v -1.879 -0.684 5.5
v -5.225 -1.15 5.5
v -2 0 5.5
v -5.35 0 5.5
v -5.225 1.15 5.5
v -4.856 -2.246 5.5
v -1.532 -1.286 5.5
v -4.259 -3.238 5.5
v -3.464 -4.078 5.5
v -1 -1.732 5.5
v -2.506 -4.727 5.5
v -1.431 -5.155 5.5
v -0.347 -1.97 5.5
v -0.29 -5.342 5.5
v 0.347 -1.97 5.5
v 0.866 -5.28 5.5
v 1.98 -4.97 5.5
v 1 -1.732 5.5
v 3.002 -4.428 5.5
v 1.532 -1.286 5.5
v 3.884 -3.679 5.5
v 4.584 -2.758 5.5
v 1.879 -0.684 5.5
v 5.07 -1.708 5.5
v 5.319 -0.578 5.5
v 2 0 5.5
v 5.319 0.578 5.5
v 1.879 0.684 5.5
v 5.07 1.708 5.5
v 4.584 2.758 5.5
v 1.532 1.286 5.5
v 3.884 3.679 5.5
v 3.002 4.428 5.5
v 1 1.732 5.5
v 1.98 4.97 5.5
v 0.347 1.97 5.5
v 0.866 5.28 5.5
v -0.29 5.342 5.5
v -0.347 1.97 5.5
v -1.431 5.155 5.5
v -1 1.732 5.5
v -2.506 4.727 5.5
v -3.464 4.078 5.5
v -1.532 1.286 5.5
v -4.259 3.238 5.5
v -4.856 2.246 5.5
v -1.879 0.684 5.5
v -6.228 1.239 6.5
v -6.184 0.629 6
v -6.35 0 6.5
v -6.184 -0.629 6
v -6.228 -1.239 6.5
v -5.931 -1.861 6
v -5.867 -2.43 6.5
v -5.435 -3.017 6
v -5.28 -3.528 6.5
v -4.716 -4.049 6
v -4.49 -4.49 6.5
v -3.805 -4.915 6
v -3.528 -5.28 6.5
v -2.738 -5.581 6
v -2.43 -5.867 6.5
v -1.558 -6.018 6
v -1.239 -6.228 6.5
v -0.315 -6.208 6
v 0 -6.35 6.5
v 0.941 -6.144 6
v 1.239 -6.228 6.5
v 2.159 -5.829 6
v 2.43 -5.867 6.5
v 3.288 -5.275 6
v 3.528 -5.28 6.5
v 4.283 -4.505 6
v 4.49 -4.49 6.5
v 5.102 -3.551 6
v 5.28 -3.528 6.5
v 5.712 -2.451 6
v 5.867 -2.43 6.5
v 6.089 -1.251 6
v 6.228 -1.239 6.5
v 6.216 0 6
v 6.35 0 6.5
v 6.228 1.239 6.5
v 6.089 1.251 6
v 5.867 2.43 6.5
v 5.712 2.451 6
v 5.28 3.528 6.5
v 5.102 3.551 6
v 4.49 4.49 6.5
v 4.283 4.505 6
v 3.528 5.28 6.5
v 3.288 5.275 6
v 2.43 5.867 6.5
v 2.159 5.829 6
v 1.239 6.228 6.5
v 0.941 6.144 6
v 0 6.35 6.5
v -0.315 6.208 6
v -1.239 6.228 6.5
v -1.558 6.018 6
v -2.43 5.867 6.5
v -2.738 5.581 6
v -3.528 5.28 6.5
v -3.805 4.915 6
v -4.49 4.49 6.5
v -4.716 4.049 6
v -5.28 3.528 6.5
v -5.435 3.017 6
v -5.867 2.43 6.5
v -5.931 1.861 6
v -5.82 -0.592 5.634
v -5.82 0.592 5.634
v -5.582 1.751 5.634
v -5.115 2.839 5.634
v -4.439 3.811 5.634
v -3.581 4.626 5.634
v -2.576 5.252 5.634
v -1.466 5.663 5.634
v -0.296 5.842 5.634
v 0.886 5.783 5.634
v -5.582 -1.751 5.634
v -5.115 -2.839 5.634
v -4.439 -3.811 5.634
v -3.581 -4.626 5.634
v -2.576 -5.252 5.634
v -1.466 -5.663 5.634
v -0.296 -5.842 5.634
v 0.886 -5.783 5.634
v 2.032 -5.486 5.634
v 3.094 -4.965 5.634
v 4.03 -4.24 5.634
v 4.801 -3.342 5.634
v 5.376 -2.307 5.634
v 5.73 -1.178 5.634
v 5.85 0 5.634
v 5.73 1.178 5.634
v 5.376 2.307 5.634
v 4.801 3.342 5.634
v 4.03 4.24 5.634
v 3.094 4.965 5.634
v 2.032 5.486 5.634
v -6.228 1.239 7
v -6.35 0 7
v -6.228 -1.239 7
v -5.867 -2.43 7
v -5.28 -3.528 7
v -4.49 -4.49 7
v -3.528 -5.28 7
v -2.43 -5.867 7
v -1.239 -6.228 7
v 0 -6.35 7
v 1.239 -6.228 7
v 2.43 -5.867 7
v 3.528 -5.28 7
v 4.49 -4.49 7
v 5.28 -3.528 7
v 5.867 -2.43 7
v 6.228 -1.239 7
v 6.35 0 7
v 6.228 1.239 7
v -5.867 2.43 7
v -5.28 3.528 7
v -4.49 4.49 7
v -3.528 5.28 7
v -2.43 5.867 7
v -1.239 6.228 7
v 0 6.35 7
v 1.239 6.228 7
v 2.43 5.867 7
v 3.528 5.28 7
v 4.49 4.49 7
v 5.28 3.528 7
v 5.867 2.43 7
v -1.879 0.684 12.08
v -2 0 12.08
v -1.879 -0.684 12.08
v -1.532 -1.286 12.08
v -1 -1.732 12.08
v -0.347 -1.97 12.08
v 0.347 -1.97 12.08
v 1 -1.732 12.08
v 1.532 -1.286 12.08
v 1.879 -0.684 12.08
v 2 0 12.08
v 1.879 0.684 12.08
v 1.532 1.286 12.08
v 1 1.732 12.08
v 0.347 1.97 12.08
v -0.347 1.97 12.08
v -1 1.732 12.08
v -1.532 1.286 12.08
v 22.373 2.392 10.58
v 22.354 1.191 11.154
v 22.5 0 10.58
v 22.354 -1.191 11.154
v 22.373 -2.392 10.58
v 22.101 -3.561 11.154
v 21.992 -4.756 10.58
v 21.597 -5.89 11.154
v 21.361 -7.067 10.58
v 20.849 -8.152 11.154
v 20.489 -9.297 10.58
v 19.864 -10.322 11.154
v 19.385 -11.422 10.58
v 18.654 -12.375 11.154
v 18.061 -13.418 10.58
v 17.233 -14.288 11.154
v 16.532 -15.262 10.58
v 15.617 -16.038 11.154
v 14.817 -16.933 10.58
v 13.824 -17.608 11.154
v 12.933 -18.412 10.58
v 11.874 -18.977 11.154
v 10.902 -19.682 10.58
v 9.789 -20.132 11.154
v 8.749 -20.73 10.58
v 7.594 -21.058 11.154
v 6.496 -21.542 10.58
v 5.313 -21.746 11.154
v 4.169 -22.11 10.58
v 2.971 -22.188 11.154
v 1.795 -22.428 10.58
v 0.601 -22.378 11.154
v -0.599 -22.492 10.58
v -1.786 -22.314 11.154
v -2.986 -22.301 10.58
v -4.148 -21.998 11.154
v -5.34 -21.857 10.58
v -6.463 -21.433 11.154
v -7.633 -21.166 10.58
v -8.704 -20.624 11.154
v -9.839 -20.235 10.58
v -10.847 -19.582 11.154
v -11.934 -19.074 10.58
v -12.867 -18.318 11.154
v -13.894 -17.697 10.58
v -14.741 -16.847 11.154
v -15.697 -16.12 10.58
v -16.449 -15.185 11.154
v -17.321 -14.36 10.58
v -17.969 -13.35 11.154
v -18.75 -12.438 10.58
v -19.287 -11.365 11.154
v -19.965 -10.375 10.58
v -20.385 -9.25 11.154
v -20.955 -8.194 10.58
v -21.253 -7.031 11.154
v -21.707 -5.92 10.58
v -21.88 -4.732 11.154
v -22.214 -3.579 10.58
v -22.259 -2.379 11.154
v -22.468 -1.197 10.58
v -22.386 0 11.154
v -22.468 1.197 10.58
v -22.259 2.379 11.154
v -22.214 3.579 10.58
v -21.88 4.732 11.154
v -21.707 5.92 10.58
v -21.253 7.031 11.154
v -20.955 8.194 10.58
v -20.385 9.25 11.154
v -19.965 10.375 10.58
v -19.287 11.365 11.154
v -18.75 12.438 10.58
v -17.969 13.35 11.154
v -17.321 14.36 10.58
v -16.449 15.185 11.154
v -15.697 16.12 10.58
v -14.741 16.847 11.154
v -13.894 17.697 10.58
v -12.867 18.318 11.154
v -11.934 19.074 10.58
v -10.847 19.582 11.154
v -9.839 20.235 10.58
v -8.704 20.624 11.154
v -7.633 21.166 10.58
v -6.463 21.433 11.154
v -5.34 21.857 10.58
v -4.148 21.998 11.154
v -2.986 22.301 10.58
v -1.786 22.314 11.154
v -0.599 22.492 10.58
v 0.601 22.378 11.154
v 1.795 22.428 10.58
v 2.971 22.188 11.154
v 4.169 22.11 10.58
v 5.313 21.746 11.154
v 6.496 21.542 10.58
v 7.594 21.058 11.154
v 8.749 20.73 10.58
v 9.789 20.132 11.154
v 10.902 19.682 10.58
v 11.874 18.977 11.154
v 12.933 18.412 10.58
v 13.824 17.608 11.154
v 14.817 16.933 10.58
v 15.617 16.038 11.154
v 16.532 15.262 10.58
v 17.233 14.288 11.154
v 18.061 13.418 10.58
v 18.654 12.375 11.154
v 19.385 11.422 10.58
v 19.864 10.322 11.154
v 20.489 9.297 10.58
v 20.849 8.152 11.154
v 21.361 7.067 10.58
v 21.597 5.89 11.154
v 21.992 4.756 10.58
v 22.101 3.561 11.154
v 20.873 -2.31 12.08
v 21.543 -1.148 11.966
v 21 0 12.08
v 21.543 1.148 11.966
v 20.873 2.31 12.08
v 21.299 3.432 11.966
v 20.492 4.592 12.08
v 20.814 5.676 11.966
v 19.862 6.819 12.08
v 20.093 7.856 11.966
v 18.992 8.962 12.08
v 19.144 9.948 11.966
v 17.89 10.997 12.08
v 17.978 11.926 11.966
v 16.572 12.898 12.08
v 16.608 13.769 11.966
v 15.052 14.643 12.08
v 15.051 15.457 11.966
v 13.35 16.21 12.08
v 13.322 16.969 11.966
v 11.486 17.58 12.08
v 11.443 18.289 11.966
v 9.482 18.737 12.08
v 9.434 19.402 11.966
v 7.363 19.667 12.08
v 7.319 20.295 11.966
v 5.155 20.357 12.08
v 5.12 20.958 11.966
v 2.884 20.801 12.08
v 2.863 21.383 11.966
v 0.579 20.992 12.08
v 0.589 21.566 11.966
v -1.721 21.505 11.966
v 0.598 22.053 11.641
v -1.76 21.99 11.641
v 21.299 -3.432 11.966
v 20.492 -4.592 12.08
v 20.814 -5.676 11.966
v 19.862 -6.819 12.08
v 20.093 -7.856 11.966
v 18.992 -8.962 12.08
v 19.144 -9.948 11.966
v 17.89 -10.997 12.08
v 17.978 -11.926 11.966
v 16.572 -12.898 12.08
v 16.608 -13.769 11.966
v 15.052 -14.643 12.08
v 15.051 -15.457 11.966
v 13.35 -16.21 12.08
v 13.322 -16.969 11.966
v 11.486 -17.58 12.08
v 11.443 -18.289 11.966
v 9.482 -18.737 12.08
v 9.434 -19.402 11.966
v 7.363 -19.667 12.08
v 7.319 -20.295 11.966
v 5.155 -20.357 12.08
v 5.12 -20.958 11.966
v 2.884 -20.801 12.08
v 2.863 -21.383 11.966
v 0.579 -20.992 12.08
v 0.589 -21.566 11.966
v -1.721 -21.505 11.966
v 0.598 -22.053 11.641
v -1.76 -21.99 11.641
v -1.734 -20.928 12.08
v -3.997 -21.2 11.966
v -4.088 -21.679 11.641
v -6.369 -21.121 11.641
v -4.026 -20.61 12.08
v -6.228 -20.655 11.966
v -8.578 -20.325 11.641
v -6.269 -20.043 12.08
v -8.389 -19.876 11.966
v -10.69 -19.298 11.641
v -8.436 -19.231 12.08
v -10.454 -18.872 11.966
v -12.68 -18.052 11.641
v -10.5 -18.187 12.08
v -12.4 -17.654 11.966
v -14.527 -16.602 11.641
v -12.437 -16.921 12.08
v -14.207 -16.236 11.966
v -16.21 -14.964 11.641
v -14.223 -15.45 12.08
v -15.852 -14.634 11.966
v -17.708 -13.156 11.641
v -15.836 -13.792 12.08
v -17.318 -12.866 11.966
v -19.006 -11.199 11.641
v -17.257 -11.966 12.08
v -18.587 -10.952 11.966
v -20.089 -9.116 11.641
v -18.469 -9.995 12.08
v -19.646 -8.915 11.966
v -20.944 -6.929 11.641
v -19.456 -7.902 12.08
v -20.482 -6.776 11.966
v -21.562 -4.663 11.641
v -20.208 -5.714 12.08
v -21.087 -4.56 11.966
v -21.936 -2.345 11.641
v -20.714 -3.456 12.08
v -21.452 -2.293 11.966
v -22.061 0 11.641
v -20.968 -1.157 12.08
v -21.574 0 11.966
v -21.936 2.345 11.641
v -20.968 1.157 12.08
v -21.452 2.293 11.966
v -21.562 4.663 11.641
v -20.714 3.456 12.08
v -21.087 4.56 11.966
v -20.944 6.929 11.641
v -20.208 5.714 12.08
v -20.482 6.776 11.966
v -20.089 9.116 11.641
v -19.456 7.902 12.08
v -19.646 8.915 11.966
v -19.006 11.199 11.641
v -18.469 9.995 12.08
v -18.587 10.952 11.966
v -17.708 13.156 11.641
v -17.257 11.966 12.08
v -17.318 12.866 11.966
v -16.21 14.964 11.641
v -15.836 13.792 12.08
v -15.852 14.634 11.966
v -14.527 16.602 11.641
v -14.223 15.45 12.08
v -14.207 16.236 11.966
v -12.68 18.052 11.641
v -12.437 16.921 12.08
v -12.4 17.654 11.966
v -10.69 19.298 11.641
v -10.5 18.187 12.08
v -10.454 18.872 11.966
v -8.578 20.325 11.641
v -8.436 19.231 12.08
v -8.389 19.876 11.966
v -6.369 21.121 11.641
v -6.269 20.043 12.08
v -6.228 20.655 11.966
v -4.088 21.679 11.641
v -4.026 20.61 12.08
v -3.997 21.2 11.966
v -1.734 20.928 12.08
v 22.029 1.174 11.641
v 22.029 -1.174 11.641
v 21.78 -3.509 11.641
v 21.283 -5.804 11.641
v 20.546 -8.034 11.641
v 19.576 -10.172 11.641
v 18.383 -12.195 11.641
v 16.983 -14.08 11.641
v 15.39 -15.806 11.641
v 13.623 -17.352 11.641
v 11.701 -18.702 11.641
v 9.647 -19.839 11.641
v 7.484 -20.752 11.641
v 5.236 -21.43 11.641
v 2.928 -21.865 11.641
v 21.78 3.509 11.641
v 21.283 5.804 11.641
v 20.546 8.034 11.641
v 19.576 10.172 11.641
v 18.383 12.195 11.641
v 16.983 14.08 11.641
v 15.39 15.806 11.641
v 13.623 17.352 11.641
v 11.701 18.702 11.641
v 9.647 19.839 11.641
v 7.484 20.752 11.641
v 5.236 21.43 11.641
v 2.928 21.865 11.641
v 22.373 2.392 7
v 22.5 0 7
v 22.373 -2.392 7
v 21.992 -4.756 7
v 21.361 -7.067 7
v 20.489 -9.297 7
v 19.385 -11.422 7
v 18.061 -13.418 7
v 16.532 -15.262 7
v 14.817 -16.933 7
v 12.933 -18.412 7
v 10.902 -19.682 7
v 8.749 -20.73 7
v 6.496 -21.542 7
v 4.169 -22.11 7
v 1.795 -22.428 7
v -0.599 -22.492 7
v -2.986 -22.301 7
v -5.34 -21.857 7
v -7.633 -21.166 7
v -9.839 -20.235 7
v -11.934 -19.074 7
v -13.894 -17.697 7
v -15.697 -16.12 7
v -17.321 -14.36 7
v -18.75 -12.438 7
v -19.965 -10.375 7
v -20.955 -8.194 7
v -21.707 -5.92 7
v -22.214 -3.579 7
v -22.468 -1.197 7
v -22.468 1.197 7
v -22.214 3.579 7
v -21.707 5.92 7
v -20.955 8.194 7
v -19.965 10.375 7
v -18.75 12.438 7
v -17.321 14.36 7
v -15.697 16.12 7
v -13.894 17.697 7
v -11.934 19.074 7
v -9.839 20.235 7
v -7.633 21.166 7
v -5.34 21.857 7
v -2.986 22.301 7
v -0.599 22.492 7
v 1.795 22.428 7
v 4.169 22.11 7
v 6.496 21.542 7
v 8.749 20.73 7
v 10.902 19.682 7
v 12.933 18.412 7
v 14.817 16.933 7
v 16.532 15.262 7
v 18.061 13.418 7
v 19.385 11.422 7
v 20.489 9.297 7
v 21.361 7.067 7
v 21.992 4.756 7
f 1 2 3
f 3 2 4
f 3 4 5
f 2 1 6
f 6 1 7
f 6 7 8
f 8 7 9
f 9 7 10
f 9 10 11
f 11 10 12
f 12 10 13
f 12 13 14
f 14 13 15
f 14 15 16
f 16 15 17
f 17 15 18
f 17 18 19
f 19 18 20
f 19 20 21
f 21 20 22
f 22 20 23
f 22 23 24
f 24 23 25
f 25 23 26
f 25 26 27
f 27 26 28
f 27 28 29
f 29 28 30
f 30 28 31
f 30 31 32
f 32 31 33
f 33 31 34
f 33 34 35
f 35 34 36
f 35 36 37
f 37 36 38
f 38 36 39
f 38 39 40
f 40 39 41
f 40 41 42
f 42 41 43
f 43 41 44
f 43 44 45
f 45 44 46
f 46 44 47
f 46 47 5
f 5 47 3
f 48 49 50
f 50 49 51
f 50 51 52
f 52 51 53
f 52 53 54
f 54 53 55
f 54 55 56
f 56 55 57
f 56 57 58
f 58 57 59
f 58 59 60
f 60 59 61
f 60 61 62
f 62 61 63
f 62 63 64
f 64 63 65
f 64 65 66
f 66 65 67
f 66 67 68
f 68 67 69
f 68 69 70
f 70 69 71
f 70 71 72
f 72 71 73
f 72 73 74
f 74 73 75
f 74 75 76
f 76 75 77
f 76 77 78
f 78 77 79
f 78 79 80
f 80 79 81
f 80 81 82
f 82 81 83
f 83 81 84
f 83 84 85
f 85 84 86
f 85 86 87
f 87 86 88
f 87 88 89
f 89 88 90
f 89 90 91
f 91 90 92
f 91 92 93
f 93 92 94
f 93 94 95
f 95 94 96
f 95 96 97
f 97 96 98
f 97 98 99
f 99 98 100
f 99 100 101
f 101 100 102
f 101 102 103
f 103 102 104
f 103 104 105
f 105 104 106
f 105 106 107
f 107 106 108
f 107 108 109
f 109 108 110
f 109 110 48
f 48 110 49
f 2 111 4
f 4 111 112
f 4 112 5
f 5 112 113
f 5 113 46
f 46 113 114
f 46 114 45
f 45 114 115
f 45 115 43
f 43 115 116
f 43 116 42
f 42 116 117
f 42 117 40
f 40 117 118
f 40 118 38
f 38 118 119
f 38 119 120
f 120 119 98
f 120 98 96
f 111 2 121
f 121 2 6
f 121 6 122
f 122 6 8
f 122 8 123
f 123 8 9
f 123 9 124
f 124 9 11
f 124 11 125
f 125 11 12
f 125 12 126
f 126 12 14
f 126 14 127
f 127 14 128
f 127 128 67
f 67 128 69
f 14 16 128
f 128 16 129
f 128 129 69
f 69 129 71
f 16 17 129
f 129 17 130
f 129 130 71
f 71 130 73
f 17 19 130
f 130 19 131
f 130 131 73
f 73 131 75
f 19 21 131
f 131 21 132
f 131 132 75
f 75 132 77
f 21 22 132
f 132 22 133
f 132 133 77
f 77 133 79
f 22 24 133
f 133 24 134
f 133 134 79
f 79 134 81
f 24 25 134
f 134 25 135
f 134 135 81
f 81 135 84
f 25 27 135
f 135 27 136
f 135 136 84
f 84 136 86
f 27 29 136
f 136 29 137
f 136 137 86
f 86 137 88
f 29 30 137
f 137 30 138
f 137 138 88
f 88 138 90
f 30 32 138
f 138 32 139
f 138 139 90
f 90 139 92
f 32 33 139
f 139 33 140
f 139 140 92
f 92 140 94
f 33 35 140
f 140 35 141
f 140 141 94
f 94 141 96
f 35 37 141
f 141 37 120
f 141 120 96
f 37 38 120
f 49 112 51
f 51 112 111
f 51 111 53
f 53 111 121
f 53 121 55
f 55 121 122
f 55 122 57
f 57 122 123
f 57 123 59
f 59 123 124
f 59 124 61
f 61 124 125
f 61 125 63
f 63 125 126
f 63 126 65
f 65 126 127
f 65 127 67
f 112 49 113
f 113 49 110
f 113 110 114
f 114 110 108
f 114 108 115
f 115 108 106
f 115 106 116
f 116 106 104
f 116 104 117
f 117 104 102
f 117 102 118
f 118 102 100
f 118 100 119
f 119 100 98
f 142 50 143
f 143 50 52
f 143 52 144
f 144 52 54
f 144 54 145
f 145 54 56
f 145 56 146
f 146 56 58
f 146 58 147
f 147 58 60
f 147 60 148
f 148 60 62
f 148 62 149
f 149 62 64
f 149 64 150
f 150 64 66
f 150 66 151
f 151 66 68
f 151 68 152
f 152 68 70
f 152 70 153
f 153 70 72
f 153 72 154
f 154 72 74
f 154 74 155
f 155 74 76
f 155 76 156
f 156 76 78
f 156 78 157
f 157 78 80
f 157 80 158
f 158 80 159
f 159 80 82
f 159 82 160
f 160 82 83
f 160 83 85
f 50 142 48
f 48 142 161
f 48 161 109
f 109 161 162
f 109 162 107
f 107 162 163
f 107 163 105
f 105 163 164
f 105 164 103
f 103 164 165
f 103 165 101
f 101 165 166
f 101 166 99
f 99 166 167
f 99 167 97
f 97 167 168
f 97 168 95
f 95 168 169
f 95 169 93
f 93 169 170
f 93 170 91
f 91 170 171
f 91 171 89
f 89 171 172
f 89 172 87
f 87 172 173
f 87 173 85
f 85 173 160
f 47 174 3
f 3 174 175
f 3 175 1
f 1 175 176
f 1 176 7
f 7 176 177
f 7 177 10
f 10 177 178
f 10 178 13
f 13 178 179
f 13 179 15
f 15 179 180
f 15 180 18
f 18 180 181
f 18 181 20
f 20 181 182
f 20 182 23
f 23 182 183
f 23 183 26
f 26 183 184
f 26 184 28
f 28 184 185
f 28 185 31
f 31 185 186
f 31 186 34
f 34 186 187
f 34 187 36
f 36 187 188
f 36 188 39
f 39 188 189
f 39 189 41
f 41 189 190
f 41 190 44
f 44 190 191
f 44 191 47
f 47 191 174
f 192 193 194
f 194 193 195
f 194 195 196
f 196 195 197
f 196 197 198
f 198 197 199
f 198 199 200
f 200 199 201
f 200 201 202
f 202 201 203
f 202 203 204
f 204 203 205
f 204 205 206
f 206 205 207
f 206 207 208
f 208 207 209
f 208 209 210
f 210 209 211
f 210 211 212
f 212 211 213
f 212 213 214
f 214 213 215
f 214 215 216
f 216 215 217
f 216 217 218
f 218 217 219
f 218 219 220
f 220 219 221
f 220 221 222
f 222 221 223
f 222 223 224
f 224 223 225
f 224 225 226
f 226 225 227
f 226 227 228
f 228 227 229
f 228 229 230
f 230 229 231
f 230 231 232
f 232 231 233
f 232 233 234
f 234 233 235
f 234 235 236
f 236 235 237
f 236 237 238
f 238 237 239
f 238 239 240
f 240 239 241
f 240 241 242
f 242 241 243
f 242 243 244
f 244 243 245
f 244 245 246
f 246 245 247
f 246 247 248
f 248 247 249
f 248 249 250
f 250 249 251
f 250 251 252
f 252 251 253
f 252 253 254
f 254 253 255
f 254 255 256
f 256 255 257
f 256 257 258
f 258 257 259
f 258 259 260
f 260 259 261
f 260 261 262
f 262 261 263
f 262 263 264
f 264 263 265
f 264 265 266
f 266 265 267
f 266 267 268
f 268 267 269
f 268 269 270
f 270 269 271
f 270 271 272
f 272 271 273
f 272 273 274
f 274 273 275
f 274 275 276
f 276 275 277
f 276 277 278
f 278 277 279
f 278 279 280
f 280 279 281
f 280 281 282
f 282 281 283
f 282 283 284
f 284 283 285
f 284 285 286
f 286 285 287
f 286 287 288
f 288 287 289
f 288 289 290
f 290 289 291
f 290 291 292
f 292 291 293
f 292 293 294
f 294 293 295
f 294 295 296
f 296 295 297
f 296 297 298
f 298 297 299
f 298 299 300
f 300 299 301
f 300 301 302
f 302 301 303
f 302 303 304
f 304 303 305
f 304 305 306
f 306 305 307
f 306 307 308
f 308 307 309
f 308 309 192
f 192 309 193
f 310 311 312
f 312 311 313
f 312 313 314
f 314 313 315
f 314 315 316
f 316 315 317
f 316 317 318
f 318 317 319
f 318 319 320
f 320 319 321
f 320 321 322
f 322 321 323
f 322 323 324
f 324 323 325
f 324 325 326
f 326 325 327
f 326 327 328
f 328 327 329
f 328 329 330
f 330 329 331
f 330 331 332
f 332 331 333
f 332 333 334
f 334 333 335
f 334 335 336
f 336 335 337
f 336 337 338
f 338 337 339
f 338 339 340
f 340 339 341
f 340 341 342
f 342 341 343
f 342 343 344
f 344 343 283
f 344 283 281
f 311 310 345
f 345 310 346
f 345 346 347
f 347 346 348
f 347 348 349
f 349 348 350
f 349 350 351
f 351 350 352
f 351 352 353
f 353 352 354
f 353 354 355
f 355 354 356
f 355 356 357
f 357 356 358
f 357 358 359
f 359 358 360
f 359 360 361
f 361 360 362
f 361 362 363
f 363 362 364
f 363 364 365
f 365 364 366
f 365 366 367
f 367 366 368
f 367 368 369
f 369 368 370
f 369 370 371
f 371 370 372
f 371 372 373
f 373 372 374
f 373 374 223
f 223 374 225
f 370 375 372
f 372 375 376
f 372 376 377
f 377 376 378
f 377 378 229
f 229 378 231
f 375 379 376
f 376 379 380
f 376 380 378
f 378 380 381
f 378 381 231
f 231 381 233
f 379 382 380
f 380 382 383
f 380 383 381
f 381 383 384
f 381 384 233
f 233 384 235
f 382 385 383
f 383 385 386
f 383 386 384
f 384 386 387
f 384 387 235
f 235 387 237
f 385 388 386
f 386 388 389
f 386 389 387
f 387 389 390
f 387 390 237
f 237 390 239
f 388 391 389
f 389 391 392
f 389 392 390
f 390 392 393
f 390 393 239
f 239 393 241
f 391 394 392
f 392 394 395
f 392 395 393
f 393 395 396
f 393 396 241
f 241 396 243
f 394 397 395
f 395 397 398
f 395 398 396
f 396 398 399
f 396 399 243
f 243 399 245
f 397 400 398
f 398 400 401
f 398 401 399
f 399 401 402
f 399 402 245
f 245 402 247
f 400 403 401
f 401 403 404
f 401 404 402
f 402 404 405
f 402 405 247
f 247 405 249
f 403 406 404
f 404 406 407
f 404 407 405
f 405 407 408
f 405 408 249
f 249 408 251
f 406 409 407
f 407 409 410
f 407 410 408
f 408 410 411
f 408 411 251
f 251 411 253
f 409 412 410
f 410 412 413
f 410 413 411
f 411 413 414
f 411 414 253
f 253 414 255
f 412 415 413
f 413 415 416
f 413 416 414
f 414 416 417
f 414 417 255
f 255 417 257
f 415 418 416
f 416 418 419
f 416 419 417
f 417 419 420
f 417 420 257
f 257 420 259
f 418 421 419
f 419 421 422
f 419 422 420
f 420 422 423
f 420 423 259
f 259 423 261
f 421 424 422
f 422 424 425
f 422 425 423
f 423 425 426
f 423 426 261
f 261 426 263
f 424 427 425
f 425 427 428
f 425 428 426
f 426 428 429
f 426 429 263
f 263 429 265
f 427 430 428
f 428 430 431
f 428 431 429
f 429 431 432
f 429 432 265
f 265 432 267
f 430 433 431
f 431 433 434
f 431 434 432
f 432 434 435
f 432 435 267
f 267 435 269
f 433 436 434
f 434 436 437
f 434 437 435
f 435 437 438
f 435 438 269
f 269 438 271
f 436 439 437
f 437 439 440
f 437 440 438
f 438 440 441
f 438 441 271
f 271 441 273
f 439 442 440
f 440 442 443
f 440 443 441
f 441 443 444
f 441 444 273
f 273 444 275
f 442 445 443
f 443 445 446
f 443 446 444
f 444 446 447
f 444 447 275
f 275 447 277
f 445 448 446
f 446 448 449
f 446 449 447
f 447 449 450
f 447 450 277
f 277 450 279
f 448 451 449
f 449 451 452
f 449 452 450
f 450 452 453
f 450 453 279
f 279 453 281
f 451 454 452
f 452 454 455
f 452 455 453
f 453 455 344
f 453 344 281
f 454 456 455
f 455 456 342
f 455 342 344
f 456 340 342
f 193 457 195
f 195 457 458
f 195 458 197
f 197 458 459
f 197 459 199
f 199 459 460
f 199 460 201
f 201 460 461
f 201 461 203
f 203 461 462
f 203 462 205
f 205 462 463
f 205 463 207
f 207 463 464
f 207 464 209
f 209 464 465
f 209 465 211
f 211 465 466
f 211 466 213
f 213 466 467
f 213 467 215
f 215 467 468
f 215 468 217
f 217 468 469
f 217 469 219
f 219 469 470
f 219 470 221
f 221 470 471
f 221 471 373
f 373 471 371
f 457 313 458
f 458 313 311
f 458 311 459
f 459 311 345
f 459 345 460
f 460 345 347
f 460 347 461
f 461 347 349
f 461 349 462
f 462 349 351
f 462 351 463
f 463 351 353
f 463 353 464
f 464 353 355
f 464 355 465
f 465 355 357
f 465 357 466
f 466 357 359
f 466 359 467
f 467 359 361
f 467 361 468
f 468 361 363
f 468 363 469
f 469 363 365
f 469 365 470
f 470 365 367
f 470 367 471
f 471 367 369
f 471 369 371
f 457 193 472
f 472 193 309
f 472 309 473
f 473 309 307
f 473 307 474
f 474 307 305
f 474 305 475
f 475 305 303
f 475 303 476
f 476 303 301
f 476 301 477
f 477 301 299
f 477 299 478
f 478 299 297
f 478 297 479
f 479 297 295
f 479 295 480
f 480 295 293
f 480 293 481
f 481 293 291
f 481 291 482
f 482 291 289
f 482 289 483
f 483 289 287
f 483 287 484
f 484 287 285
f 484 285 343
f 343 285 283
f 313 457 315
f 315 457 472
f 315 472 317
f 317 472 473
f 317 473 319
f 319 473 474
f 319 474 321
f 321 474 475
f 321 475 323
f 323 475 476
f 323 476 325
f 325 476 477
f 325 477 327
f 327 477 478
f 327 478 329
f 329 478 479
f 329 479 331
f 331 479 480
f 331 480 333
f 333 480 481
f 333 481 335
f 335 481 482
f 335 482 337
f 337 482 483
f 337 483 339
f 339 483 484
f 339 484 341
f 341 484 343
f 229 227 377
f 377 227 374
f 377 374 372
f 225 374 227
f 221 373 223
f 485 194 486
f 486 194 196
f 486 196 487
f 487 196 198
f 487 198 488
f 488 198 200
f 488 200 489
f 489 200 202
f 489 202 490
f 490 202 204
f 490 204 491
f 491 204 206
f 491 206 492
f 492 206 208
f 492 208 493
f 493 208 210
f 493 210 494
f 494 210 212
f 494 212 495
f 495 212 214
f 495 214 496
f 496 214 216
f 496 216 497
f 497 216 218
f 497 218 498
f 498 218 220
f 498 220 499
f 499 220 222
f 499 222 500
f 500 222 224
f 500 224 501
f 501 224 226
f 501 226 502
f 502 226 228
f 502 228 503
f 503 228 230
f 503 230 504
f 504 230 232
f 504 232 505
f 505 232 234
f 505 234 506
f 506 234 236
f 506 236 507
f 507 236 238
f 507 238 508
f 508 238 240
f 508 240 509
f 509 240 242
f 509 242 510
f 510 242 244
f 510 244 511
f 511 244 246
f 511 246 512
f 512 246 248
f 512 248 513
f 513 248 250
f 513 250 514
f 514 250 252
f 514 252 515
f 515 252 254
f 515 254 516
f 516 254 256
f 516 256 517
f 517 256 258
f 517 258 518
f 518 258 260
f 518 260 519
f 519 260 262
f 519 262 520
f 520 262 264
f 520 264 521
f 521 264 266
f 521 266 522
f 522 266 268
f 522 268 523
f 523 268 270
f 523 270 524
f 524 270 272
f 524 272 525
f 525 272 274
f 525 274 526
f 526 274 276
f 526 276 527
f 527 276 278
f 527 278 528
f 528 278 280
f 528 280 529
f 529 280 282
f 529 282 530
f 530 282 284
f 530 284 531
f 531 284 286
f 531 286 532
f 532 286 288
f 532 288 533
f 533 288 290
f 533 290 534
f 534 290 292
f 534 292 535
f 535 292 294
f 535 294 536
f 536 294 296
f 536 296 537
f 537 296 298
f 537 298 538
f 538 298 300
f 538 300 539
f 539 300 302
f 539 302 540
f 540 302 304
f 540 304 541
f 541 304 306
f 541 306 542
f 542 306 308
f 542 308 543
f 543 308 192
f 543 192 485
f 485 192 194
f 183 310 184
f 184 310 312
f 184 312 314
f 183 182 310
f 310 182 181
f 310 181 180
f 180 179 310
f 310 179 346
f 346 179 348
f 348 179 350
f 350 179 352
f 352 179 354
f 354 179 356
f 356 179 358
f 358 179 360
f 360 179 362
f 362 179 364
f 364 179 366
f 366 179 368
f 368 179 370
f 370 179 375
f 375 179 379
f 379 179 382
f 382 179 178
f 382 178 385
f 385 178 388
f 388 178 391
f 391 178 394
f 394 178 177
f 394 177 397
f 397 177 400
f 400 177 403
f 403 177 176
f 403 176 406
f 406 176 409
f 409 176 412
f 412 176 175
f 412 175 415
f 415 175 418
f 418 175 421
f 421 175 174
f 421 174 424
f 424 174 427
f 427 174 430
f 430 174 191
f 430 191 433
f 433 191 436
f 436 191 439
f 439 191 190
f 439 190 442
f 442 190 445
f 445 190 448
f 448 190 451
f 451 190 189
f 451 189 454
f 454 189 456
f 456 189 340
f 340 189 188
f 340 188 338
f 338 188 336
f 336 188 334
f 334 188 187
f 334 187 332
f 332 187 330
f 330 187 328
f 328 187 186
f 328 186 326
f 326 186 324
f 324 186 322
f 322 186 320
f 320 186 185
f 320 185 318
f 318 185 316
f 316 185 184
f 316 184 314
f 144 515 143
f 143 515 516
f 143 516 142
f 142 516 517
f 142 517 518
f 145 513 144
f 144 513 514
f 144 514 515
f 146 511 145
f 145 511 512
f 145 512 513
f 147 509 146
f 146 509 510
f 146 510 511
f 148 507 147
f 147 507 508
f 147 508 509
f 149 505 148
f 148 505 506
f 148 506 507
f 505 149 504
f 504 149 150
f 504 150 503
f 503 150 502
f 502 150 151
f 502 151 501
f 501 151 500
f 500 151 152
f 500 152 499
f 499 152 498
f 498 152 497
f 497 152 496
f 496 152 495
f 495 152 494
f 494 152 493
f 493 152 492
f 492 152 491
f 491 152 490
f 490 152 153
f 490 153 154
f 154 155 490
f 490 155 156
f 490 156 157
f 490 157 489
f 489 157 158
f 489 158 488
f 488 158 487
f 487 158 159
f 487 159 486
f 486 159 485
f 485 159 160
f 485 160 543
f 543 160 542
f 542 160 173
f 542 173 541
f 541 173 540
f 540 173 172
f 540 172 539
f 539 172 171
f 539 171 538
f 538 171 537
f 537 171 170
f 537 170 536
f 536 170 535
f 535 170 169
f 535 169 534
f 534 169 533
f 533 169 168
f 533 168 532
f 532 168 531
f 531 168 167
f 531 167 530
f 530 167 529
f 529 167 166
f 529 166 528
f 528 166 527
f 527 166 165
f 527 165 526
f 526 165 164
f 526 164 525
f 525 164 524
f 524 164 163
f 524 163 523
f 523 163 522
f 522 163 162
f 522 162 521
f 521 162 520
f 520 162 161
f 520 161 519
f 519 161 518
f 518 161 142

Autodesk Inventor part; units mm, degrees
ref_plane "YZ Plane" through (0, 0, 0) normal (1, 0, 0) x (0, 1, 0)
ref_plane "XZ Plane" through (0, 0, 0) normal (0, 1, 0) x (-1, 0, 0)
ref_plane "XY Plane" through (0, 0, 0) normal (0, 0, 1) x (1, 0, 0)
sketch "Sketch1" plane through (0, 0, 0) normal (0, 0, 1) x (1, 0, 0)
  circle A0 centre (0, 0) radius 3.925
  circle A1 centre (0, 0) radius 2
  dimension "d0" = 7.85
  dimension "d1" = 4
extrude "Extrusion1" add sketch "Sketch1" along normal blind 7
sketch "Sketch2" plane through (0, 0, 7) normal (0, 0, 1) x (1, 0, 0)
  circle A0 centre (0, 0) radius 22.5
  circle A1 centre (0, 0) radius 2 projected
  dimension "d4" = 45
extrude "Extrusion2" add sketch "Sketch2" along normal blind 5.08
fillet "Fillet1" radius 1.5 1 edges at (-22.5, 0, 12.08)
sketch "Sketch4" plane through (0, 0, 7) normal (0, 0, -1) x (-1, 0, 0)
  circle A0 centre (0, 0) radius 3.925
  circle A1 centre (0, 0) radius 6.35
  dimension "d10" = 12.7
extrude "Extrusion4" add sketch "Sketch4" along normal blind 1.5
sketch "Sketch5" plane through (0, 0, 0) normal (0, 0, -1) x (-1, 0, 0)
  circle A0 centre (0, 0) radius 3.925 projected
  circle A1 centre (0, 0) radius 2 projected
fillet "Fillet2" radius 1 1 edges at (6.35, 0, 5.5)
extrude "Extrusion5" add sketch "Sketch5" along normal blind 1.5
sketch "Sketch6" plane through (0, 0, -1.5) normal (0, 0, -1) x (-1, 0, 0)
  circle A0 centre (0, 0) radius 3.925 projected
  circle A1 centre (0, 0) radius 2 projected
extrude "Extrusion6" cut sketch "Sketch6" against normal up to surface (7 mm away)
properties part number "wheel_mrrover2"
